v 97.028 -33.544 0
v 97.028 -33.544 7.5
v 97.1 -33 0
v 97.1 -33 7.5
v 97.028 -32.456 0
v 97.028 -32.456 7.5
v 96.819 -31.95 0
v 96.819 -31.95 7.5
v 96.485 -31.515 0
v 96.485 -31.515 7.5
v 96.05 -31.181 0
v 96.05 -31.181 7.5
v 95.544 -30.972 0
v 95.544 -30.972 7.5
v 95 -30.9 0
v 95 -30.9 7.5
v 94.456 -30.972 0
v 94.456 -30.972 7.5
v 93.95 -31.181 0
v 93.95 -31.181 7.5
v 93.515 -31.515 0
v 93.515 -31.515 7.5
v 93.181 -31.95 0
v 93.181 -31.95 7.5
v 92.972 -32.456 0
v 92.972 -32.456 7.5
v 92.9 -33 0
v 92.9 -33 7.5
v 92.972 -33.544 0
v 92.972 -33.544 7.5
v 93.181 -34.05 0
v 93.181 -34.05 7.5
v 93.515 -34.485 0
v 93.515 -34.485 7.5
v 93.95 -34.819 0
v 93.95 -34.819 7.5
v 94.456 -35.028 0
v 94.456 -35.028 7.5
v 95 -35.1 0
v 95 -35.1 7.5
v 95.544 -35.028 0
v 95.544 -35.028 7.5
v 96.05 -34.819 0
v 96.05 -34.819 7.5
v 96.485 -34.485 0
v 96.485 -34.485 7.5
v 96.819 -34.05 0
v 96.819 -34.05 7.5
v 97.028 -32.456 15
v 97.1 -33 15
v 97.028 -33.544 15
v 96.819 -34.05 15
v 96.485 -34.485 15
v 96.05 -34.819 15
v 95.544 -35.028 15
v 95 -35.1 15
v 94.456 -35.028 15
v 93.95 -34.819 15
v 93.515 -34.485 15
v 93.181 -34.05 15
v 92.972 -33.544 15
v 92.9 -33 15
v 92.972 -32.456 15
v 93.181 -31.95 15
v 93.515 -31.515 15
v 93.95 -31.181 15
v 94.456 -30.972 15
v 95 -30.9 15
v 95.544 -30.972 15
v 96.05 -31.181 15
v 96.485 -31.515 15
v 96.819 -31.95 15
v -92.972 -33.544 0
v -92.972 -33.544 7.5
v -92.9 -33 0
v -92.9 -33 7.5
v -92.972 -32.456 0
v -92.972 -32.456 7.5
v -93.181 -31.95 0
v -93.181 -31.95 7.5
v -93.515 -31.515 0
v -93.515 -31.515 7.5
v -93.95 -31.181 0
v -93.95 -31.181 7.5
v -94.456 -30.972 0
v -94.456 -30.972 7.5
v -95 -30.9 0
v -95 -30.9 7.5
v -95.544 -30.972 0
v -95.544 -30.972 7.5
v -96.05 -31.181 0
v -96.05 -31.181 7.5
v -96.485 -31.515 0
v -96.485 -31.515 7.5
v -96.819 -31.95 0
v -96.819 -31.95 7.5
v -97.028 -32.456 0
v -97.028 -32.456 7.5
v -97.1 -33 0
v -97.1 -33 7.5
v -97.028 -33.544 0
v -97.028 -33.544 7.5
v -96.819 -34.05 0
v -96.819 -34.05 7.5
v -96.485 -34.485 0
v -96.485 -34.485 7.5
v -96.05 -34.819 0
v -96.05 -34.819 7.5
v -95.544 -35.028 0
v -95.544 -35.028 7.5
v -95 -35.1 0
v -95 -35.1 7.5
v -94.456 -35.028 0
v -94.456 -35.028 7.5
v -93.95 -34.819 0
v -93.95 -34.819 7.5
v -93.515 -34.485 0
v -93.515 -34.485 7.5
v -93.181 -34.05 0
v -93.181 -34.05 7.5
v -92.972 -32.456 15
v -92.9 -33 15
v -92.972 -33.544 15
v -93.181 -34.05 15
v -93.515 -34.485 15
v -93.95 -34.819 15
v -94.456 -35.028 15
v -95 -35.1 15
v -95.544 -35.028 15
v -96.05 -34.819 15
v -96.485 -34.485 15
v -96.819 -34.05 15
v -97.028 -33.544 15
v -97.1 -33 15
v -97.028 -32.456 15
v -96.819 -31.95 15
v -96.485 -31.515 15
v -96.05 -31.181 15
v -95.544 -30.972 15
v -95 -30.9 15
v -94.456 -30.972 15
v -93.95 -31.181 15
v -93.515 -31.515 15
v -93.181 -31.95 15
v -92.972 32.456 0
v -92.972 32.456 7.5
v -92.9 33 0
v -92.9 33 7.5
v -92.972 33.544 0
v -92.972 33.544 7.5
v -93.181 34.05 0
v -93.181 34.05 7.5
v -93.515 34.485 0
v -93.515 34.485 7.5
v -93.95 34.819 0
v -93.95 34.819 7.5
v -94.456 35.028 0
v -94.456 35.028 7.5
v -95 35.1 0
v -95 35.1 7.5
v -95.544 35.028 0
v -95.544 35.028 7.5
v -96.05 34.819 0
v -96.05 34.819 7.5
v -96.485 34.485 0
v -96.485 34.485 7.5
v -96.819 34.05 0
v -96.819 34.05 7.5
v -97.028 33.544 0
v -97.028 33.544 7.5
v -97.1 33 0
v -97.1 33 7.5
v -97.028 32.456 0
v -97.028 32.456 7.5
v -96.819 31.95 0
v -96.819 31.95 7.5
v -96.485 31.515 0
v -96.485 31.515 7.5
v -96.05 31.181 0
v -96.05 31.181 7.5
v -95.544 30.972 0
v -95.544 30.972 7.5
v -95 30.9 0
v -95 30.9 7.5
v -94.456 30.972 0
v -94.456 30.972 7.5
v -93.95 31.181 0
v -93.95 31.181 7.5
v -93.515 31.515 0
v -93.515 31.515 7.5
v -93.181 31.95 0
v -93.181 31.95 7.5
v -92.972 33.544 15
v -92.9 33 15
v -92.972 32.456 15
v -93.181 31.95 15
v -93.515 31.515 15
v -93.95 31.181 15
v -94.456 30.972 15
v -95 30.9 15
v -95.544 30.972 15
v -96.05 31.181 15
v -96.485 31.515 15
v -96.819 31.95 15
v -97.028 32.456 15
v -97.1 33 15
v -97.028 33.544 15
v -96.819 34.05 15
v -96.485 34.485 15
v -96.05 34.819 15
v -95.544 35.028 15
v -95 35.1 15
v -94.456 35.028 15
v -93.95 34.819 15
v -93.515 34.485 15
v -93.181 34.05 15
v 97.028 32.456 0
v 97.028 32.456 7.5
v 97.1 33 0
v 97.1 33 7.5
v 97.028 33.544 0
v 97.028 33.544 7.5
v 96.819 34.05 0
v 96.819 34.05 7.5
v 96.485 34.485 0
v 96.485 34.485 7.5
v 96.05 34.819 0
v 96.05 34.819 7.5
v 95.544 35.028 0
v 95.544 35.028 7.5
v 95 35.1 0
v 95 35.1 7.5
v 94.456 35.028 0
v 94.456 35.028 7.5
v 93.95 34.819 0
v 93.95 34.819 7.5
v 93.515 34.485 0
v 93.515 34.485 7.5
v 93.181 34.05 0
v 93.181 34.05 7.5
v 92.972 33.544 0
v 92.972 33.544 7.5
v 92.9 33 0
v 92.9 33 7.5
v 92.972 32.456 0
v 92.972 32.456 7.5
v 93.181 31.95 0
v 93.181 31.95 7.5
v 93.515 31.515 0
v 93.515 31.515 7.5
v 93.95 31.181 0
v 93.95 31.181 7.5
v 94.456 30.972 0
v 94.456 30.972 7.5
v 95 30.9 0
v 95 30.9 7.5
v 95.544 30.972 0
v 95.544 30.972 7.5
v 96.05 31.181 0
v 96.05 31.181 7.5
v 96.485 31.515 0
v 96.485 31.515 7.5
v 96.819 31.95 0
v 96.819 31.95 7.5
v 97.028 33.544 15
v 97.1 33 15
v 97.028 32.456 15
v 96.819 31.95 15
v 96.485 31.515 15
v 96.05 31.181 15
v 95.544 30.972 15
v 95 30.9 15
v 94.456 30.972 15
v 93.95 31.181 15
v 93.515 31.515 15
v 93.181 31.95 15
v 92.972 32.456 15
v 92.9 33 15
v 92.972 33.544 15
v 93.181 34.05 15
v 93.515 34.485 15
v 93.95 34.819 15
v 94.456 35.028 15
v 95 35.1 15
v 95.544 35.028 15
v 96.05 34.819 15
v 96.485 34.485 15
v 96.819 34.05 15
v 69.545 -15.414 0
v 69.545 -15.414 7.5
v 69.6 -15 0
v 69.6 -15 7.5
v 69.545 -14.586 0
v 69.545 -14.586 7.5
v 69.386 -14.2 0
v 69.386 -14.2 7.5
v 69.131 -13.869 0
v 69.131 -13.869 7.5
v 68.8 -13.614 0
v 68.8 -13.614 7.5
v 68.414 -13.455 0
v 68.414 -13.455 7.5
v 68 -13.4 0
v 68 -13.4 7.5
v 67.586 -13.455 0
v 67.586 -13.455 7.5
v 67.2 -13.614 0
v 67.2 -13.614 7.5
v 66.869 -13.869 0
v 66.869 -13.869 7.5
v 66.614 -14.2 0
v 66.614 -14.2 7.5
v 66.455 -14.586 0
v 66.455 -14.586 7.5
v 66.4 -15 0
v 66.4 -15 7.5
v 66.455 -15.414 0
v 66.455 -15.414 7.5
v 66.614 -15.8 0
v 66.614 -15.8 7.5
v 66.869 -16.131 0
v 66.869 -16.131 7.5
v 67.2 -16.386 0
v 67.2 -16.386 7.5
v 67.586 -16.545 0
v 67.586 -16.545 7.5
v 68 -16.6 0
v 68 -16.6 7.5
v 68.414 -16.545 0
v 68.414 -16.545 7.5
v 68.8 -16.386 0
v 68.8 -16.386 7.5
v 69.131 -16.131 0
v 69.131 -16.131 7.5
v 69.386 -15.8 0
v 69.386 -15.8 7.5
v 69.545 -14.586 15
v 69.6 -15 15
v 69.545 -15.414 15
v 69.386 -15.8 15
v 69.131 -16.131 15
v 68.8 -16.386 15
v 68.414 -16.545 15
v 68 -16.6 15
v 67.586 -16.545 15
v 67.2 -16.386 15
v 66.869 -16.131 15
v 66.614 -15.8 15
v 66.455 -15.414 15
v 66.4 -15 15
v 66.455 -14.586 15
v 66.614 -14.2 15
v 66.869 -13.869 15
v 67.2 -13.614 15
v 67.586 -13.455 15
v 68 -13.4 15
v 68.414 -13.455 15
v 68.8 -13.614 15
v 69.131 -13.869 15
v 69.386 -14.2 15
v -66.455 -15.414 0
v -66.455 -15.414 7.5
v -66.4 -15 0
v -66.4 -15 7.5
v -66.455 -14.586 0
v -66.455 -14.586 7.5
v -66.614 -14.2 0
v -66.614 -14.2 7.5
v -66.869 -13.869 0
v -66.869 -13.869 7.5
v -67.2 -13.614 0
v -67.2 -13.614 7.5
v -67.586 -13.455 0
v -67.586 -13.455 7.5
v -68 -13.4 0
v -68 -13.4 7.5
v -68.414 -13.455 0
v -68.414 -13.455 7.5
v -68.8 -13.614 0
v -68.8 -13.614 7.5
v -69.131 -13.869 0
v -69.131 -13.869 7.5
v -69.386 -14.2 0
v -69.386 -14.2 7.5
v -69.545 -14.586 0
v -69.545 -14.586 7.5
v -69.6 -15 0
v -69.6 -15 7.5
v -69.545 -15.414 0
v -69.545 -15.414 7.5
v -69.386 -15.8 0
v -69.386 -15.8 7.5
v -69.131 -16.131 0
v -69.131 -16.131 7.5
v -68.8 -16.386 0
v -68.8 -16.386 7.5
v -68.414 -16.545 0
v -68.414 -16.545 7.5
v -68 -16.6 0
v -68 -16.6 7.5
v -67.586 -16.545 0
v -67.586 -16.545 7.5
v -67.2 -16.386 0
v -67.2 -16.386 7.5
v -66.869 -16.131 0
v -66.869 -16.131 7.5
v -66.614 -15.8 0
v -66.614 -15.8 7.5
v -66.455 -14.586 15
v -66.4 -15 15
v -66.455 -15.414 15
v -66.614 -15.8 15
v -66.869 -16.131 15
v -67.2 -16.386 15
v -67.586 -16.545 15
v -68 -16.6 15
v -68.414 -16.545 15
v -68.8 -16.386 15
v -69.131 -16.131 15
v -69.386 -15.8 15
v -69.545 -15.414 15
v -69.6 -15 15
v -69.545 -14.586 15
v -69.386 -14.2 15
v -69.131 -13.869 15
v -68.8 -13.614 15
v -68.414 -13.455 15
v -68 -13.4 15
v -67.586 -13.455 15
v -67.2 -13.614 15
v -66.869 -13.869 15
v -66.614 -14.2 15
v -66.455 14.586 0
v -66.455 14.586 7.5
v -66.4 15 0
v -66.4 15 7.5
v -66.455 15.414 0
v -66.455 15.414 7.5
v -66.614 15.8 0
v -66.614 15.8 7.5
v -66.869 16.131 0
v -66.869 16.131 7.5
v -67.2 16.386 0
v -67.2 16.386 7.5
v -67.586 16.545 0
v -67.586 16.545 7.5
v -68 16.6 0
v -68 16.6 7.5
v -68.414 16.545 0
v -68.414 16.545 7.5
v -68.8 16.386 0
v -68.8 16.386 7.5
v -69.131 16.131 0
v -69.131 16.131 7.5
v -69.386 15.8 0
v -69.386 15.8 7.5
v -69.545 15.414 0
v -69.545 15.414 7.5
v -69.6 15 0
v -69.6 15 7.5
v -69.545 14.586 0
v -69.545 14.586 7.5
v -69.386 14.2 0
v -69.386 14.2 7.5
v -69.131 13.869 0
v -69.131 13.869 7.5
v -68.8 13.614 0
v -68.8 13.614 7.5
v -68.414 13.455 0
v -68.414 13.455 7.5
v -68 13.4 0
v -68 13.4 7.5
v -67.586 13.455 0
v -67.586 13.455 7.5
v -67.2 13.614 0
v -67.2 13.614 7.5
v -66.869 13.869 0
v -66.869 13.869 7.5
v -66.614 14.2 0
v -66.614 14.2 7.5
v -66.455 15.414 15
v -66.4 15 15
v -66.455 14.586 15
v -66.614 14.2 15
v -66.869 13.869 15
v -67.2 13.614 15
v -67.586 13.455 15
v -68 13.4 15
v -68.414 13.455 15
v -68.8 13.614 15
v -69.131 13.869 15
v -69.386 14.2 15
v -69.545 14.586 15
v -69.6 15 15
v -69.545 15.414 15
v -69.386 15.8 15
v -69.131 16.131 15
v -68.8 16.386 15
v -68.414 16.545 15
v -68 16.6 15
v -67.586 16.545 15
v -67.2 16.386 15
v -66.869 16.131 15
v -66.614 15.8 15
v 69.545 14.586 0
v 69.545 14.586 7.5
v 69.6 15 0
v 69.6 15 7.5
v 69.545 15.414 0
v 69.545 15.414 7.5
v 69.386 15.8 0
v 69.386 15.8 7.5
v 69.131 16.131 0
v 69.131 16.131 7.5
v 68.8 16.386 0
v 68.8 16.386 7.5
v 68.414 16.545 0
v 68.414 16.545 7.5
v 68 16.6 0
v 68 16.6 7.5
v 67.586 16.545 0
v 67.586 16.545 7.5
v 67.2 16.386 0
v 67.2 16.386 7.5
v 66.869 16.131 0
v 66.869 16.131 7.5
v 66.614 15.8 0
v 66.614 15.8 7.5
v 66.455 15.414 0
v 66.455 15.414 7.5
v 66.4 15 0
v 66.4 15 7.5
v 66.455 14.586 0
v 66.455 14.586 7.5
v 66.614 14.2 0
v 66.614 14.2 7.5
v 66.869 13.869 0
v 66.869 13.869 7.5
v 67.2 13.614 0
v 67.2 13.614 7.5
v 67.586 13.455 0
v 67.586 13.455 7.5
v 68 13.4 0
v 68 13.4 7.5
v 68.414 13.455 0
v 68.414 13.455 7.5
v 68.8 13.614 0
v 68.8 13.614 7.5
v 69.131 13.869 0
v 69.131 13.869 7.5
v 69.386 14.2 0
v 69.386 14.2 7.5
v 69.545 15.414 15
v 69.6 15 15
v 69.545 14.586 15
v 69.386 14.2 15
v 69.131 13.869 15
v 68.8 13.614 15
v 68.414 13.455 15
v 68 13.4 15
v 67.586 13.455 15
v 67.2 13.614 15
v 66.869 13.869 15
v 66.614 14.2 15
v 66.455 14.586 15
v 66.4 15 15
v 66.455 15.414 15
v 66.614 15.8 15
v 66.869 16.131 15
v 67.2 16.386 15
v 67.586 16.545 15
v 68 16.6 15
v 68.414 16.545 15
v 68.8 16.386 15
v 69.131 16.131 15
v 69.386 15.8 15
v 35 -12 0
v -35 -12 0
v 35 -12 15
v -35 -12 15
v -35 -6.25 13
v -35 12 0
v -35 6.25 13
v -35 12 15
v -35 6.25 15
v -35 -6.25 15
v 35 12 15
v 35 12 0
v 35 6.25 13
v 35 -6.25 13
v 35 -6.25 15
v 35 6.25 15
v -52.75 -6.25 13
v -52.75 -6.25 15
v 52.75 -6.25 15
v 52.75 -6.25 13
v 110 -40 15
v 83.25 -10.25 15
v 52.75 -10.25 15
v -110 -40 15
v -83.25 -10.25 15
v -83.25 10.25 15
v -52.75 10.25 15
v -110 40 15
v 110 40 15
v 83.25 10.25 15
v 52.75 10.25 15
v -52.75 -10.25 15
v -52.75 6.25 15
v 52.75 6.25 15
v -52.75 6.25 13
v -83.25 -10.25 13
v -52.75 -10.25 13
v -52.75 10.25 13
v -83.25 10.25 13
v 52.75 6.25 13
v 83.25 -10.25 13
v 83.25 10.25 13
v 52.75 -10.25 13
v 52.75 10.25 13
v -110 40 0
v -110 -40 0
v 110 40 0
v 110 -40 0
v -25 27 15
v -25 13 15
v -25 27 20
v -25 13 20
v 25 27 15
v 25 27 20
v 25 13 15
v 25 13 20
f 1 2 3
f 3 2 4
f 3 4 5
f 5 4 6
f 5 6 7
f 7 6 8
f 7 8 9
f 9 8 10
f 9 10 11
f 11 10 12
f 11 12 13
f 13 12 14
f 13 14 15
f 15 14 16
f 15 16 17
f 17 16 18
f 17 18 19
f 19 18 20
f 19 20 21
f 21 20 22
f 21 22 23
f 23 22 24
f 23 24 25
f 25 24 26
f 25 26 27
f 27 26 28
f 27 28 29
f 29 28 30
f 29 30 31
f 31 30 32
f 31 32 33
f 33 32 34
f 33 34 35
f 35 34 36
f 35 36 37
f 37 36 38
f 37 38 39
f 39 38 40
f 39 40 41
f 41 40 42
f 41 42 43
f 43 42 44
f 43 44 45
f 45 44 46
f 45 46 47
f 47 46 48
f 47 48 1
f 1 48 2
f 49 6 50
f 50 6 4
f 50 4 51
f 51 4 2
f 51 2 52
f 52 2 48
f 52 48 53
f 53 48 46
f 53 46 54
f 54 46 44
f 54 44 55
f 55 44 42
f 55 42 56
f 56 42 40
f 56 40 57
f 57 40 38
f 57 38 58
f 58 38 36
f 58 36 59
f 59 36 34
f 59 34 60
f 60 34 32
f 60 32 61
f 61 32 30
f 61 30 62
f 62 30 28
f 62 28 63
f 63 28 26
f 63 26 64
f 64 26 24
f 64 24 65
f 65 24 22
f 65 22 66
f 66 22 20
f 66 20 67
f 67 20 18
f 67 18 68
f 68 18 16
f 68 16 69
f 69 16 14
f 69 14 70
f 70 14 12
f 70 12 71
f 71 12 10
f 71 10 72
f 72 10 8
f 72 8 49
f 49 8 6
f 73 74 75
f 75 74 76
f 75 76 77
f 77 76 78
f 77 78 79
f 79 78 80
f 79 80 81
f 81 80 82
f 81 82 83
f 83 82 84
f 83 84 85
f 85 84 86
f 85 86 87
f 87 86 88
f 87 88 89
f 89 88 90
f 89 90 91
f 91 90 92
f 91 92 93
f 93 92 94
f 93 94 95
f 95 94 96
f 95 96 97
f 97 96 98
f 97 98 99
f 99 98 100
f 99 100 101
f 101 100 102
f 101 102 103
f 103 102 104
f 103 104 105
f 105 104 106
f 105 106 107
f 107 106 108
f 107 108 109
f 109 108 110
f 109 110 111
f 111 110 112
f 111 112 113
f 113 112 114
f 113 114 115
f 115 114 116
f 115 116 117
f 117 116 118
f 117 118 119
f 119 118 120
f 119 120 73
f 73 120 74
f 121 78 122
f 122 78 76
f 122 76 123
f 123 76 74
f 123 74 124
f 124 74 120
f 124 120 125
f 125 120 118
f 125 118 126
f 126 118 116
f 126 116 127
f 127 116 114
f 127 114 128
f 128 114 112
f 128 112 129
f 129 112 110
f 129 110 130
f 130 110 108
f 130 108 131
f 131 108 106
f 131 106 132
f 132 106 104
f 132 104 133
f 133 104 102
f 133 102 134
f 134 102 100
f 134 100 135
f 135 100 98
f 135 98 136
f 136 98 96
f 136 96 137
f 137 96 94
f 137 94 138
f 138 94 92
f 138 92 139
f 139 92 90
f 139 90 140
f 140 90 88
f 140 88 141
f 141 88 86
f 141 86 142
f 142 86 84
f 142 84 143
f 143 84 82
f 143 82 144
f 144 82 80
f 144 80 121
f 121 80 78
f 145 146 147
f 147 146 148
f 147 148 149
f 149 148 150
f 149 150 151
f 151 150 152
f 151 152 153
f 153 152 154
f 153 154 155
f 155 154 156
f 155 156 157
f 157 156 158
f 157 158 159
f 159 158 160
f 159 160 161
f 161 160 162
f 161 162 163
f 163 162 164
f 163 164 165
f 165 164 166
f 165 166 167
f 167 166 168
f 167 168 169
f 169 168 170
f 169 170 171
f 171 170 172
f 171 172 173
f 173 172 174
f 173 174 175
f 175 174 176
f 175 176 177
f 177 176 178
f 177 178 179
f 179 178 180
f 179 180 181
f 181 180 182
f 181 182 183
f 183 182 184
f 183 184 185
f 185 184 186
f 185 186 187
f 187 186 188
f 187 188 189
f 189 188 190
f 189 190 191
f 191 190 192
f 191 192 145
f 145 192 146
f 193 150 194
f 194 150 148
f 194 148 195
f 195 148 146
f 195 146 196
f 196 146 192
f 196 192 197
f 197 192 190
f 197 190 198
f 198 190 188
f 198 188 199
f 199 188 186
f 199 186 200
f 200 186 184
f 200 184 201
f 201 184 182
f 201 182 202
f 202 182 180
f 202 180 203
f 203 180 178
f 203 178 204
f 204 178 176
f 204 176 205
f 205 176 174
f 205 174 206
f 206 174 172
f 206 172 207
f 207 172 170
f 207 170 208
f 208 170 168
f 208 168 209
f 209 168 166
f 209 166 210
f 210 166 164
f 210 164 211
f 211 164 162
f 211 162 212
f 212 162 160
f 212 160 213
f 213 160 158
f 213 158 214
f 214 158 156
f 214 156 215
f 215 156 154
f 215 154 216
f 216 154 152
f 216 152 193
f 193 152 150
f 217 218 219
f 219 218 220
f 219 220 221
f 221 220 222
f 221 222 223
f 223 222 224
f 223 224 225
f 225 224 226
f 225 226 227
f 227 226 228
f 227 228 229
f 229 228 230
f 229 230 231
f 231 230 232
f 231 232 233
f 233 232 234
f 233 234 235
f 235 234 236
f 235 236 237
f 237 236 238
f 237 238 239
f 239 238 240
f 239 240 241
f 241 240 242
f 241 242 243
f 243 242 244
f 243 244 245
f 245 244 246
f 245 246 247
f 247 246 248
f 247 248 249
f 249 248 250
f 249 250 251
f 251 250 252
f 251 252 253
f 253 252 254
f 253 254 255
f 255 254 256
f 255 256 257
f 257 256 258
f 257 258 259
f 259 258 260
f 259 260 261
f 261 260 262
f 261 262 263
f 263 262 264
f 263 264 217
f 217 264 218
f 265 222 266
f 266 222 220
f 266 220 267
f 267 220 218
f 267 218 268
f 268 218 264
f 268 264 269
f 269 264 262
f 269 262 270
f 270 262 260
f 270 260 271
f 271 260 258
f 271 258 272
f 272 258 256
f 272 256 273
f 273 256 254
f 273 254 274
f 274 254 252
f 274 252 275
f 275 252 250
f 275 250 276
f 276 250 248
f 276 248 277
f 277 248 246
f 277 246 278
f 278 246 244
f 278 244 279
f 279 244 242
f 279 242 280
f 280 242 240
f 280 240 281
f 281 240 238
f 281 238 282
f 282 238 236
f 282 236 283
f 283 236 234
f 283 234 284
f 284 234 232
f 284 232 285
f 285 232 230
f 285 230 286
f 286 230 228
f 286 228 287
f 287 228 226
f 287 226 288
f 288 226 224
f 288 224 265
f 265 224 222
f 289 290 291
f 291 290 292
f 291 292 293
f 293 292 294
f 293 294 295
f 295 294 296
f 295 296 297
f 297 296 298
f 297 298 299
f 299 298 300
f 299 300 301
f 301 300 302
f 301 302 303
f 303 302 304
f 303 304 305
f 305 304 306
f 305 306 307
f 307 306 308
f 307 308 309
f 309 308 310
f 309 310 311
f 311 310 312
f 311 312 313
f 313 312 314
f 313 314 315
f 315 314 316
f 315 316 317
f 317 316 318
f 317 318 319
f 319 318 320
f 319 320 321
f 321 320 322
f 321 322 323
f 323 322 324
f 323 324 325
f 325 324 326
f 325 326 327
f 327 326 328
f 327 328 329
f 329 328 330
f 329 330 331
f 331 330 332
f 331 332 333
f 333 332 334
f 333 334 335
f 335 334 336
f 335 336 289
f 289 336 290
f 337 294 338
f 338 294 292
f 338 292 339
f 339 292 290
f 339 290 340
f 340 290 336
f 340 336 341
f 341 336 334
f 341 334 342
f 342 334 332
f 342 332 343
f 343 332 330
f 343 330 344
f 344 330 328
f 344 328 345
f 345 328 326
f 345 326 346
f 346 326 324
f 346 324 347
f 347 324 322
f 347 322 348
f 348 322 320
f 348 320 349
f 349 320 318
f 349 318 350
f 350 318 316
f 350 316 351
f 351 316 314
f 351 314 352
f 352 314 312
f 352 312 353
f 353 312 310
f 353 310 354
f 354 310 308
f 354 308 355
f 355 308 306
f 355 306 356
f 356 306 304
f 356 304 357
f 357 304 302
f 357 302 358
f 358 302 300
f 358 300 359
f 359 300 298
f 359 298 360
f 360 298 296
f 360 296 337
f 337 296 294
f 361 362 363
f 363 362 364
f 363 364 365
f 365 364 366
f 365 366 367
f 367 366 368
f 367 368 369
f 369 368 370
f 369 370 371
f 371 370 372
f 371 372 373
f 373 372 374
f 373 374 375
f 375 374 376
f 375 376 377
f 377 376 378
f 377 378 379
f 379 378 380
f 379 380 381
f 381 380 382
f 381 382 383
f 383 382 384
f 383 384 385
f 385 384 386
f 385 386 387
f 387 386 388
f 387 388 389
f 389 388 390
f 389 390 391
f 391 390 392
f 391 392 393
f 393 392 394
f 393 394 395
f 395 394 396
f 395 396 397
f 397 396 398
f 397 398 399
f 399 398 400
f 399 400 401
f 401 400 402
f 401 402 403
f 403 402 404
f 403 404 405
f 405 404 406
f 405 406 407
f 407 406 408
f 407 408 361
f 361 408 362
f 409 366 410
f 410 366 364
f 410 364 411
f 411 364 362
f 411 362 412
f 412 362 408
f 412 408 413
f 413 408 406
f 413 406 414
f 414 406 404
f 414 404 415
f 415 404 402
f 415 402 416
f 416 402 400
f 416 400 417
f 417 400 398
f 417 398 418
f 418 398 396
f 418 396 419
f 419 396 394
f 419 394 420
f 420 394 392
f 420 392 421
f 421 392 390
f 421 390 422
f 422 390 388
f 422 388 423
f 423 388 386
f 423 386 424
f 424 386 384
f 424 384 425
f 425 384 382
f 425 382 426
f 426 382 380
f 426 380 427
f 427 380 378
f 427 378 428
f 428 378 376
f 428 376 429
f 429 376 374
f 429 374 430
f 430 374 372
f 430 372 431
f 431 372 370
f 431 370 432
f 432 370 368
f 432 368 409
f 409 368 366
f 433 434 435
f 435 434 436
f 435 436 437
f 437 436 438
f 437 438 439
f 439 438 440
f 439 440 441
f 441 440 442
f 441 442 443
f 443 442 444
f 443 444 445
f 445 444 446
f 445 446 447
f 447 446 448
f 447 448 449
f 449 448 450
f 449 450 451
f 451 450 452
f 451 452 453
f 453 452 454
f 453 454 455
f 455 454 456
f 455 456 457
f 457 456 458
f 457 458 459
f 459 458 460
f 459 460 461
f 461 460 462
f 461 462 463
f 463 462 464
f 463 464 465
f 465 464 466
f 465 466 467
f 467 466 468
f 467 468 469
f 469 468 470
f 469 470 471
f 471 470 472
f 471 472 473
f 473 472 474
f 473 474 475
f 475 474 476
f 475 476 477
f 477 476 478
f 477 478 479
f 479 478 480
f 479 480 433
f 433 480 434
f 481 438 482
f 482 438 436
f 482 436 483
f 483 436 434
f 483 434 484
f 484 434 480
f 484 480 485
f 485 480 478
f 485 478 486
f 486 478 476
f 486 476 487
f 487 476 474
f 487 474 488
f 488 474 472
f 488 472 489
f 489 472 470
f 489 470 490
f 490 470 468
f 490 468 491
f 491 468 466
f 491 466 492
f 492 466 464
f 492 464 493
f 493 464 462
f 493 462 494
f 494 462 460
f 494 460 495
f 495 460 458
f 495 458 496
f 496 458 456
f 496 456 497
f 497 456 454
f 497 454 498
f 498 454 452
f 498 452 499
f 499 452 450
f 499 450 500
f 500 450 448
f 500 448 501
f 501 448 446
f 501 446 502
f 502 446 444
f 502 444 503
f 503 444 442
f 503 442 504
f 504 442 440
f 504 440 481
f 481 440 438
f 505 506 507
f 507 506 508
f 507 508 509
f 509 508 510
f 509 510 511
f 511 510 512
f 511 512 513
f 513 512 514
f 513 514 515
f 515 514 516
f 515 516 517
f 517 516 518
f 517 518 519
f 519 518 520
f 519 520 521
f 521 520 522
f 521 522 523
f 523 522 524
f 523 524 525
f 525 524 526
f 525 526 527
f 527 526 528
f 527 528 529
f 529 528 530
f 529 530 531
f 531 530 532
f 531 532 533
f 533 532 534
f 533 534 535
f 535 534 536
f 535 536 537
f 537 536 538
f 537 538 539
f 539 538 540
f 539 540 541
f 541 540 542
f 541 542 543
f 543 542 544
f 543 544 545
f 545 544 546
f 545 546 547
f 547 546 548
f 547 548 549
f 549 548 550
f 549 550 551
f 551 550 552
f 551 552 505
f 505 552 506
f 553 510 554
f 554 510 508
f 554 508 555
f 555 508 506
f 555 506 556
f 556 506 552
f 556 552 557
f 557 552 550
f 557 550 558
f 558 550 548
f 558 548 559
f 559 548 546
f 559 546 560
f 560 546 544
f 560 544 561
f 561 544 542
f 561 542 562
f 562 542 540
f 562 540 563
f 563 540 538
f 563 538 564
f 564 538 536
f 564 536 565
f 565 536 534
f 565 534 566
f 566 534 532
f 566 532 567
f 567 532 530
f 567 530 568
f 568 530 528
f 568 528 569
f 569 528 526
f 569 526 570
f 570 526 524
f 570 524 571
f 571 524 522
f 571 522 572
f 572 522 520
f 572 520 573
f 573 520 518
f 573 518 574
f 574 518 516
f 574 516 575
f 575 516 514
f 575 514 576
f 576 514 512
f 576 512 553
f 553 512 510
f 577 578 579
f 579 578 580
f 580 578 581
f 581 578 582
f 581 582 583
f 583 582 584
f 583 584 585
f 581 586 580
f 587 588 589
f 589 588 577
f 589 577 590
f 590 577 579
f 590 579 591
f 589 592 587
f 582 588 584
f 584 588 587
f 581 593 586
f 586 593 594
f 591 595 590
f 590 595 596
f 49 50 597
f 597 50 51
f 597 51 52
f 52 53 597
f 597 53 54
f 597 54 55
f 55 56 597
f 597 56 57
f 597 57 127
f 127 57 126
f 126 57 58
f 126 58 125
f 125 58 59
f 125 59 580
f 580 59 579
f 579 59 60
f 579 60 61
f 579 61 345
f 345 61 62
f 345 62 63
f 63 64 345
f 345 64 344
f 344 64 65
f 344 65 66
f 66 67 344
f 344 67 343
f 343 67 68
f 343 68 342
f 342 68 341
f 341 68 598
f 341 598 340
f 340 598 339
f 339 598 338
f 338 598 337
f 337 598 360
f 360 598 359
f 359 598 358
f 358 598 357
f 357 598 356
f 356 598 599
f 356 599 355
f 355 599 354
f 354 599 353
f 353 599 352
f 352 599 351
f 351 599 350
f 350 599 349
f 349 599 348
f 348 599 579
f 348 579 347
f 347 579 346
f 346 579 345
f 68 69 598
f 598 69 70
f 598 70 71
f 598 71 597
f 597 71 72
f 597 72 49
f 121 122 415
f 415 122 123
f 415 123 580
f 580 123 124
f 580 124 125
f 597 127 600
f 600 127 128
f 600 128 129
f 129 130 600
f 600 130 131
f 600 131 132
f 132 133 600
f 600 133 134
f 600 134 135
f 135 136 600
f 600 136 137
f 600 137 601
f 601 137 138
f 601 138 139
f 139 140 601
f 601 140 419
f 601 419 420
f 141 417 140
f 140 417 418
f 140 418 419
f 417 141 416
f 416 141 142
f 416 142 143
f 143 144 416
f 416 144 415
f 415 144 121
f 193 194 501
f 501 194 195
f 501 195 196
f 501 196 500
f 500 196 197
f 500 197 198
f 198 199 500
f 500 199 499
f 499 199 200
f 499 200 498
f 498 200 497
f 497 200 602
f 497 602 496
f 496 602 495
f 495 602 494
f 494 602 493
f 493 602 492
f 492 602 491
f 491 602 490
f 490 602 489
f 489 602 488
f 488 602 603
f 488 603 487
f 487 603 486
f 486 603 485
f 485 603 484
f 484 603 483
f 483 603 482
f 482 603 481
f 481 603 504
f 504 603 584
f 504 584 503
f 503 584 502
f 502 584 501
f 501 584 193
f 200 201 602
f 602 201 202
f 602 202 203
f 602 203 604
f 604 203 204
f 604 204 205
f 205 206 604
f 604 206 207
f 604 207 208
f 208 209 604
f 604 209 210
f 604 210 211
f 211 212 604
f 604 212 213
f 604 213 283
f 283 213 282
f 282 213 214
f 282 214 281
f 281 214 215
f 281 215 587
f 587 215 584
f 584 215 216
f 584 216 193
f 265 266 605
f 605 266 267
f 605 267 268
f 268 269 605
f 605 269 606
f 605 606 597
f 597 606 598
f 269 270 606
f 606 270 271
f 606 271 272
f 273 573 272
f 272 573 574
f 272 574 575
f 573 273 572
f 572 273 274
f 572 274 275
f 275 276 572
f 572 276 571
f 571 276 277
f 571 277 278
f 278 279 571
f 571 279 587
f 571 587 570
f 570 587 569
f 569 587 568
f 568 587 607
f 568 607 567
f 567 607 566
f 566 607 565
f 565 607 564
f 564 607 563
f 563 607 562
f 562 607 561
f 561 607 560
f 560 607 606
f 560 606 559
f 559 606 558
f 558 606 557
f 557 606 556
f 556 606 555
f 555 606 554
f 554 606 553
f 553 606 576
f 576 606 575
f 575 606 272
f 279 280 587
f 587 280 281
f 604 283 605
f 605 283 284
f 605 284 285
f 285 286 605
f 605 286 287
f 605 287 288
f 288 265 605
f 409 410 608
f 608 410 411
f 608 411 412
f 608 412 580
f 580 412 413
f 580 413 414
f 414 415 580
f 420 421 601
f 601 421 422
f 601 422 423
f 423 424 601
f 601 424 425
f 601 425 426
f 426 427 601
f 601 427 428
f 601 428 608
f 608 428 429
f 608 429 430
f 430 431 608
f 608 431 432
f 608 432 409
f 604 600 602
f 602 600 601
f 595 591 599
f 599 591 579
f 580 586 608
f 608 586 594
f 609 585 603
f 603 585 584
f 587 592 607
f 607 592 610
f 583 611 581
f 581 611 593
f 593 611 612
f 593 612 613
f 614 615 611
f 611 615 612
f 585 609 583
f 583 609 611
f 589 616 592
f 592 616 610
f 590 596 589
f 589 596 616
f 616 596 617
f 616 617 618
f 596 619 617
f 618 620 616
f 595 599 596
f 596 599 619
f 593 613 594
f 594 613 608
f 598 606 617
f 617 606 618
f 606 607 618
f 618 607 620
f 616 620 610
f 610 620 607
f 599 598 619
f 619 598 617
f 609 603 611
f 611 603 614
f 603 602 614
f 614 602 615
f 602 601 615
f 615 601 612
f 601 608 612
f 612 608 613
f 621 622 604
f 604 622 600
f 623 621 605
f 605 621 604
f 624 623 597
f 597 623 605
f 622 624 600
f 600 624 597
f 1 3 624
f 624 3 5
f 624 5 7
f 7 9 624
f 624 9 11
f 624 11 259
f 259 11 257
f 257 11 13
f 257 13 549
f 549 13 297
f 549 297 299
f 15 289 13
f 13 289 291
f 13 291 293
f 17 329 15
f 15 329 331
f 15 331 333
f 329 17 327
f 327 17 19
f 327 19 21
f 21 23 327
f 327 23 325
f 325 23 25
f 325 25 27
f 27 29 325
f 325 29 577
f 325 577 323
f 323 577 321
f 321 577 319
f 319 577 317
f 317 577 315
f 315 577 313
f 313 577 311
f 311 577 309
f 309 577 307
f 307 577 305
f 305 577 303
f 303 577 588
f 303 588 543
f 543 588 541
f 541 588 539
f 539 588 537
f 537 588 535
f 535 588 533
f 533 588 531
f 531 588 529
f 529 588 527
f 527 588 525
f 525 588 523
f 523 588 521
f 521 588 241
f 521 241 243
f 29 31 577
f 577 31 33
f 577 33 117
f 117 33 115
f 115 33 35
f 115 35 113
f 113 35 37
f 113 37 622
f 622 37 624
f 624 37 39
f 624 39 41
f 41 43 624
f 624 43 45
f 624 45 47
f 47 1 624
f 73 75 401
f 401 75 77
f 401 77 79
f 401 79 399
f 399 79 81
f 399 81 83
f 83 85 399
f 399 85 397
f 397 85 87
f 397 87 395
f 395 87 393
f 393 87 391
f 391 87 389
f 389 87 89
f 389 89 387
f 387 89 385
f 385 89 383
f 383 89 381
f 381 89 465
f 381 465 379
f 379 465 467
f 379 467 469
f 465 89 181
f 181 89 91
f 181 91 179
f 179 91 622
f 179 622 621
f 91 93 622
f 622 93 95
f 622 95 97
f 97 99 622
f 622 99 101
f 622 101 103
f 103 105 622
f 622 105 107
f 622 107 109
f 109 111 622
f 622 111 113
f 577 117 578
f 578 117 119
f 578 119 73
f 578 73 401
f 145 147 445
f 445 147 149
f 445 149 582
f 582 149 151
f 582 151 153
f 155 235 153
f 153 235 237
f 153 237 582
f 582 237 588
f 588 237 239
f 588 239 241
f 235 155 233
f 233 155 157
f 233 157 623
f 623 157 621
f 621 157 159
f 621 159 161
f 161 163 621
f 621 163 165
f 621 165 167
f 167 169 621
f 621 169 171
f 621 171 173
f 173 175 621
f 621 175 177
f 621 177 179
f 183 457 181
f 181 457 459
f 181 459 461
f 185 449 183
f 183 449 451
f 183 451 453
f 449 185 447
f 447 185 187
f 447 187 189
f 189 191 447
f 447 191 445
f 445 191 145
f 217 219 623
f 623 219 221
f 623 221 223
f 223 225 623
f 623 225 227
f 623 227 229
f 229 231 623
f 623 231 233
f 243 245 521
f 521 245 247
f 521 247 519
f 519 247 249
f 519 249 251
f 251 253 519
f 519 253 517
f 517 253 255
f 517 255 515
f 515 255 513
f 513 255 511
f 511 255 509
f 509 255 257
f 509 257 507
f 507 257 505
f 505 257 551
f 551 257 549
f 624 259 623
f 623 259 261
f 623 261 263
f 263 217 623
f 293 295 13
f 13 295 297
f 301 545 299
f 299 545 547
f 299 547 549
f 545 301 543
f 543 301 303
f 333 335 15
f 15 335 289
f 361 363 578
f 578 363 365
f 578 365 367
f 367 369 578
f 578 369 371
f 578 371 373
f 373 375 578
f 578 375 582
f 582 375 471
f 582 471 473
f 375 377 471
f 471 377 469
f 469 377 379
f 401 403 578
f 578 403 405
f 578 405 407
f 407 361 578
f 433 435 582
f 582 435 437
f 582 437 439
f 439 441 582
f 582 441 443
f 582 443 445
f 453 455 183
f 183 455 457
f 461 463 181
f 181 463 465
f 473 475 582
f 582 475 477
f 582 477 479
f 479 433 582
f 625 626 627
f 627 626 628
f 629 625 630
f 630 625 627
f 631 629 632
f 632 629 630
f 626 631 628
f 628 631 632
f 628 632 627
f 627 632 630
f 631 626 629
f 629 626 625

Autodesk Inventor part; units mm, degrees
ref_plane "YZ Plane" through (0, 0, 0) normal (1, 0, 0) x (0, 1, 0)
ref_plane "XZ Plane" through (0, 0, 0) normal (0, 1, 0) x (-1, 0, 0)
sketch "Skizze1" plane through (0, 0, 0) normal (0, 0, 1) x (1, 0, 0)
  line L0 (-110, -40) -> (110, -40)
  line L1 (110, -40) -> (110, 40)
  line L2 (110, 40) -> (-110, 40)
  line L3 (-110, 40) -> (-110, -40)
extrude "Extrusion1" add sketch "Skizze1" along normal blind 15
ref_plane "Arbeitsebene1" through (0, 0, 15) normal (0, 0, 1) x (1, 0, 0)
sketch "Skizze2" plane through (0, 0, 15) normal (0, 0, 1) x (1, 0, 0)
  line L0 (-83.25, -10.25) -> (-52.75, -10.25)
  line L1 (-52.75, -10.25) -> (-52.75, 10.25)
  line L2 (-52.75, 10.25) -> (-83.25, 10.25)
  line L3 (-83.25, 10.25) -> (-83.25, -10.25)
extrude "Extrusion2" cut sketch "Skizze2" against normal blind 2
sketch "Skizze3" plane through (0, 0, 15) normal (0, 0, 1) x (1, 0, 0)
  line L0 (52.75, -10.25) -> (83.25, -10.25)
  line L1 (83.25, -10.25) -> (83.25, 10.25)
  line L2 (83.25, 10.25) -> (52.75, 10.25)
  line L3 (52.75, 10.25) -> (52.75, -10.25)
extrude "Extrusion3" cut sketch "Skizze3" against normal blind 2
sketch "Skizze4" plane through (0, 0, 15) normal (0, 0, 1) x (1, 0, 0)
  line L0 (-53.25, -6.25) -> (53.25, -6.25)
  line L1 (53.25, -6.25) -> (53.25, 6.25)
  line L2 (53.25, 6.25) -> (-53.25, 6.25)
  line L3 (-53.25, 6.25) -> (-53.25, -6.25)
extrude "Extrusion4" cut sketch "Skizze4" against normal blind 2
sketch "Skizze5" plane through (0, 0, 15) normal (0, 0, 1) x (1, 0, 0)
  line L0 (-35, -12) -> (35, -12)
  line L1 (35, -12) -> (35, 12)
  line L2 (35, 12) -> (-35, 12)
  line L3 (-35, 12) -> (-35, -12)
extrude "Extrusion5" cut sketch "Skizze5" against normal blind 16
sketch "Skizze6" plane through (0, 0, 15) normal (0, 0, 1) x (1, 0, 0)
  line L0 (-25, 13) -> (25, 13)
  line L1 (25, 13) -> (25, 27)
  line L2 (25, 27) -> (-25, 27)
  line L3 (-25, 27) -> (-25, 13)
extrude "Extrusion6" add sketch "Skizze6" along normal blind 5 separate body
sketch "Skizze7" plane through (0, 0, 15) normal (0, 0, 1) x (1, 0, 0)
  circle A0 centre (-68, -15) radius 1.6
  circle A1 centre (-68, 15) radius 1.6
  circle A2 centre (68, -15) radius 1.6
  circle A3 centre (68, 15) radius 1.6
extrude "Extrusion7" cut sketch "Skizze7" against normal blind 16 bodies 1
sketch "Skizze8" plane through (0, 0, 15) normal (0, 0, 1) x (1, 0, 0)
  circle A0 centre (-95, -33) radius 2.1
  circle A1 centre (-95, 33) radius 2.1
  circle A2 centre (95, -33) radius 2.1
  circle A3 centre (95, 33) radius 2.1
extrude "Extrusion8" cut sketch "Skizze8" against normal blind 16 bodies 1
properties part number "Grundplatte_v3"
